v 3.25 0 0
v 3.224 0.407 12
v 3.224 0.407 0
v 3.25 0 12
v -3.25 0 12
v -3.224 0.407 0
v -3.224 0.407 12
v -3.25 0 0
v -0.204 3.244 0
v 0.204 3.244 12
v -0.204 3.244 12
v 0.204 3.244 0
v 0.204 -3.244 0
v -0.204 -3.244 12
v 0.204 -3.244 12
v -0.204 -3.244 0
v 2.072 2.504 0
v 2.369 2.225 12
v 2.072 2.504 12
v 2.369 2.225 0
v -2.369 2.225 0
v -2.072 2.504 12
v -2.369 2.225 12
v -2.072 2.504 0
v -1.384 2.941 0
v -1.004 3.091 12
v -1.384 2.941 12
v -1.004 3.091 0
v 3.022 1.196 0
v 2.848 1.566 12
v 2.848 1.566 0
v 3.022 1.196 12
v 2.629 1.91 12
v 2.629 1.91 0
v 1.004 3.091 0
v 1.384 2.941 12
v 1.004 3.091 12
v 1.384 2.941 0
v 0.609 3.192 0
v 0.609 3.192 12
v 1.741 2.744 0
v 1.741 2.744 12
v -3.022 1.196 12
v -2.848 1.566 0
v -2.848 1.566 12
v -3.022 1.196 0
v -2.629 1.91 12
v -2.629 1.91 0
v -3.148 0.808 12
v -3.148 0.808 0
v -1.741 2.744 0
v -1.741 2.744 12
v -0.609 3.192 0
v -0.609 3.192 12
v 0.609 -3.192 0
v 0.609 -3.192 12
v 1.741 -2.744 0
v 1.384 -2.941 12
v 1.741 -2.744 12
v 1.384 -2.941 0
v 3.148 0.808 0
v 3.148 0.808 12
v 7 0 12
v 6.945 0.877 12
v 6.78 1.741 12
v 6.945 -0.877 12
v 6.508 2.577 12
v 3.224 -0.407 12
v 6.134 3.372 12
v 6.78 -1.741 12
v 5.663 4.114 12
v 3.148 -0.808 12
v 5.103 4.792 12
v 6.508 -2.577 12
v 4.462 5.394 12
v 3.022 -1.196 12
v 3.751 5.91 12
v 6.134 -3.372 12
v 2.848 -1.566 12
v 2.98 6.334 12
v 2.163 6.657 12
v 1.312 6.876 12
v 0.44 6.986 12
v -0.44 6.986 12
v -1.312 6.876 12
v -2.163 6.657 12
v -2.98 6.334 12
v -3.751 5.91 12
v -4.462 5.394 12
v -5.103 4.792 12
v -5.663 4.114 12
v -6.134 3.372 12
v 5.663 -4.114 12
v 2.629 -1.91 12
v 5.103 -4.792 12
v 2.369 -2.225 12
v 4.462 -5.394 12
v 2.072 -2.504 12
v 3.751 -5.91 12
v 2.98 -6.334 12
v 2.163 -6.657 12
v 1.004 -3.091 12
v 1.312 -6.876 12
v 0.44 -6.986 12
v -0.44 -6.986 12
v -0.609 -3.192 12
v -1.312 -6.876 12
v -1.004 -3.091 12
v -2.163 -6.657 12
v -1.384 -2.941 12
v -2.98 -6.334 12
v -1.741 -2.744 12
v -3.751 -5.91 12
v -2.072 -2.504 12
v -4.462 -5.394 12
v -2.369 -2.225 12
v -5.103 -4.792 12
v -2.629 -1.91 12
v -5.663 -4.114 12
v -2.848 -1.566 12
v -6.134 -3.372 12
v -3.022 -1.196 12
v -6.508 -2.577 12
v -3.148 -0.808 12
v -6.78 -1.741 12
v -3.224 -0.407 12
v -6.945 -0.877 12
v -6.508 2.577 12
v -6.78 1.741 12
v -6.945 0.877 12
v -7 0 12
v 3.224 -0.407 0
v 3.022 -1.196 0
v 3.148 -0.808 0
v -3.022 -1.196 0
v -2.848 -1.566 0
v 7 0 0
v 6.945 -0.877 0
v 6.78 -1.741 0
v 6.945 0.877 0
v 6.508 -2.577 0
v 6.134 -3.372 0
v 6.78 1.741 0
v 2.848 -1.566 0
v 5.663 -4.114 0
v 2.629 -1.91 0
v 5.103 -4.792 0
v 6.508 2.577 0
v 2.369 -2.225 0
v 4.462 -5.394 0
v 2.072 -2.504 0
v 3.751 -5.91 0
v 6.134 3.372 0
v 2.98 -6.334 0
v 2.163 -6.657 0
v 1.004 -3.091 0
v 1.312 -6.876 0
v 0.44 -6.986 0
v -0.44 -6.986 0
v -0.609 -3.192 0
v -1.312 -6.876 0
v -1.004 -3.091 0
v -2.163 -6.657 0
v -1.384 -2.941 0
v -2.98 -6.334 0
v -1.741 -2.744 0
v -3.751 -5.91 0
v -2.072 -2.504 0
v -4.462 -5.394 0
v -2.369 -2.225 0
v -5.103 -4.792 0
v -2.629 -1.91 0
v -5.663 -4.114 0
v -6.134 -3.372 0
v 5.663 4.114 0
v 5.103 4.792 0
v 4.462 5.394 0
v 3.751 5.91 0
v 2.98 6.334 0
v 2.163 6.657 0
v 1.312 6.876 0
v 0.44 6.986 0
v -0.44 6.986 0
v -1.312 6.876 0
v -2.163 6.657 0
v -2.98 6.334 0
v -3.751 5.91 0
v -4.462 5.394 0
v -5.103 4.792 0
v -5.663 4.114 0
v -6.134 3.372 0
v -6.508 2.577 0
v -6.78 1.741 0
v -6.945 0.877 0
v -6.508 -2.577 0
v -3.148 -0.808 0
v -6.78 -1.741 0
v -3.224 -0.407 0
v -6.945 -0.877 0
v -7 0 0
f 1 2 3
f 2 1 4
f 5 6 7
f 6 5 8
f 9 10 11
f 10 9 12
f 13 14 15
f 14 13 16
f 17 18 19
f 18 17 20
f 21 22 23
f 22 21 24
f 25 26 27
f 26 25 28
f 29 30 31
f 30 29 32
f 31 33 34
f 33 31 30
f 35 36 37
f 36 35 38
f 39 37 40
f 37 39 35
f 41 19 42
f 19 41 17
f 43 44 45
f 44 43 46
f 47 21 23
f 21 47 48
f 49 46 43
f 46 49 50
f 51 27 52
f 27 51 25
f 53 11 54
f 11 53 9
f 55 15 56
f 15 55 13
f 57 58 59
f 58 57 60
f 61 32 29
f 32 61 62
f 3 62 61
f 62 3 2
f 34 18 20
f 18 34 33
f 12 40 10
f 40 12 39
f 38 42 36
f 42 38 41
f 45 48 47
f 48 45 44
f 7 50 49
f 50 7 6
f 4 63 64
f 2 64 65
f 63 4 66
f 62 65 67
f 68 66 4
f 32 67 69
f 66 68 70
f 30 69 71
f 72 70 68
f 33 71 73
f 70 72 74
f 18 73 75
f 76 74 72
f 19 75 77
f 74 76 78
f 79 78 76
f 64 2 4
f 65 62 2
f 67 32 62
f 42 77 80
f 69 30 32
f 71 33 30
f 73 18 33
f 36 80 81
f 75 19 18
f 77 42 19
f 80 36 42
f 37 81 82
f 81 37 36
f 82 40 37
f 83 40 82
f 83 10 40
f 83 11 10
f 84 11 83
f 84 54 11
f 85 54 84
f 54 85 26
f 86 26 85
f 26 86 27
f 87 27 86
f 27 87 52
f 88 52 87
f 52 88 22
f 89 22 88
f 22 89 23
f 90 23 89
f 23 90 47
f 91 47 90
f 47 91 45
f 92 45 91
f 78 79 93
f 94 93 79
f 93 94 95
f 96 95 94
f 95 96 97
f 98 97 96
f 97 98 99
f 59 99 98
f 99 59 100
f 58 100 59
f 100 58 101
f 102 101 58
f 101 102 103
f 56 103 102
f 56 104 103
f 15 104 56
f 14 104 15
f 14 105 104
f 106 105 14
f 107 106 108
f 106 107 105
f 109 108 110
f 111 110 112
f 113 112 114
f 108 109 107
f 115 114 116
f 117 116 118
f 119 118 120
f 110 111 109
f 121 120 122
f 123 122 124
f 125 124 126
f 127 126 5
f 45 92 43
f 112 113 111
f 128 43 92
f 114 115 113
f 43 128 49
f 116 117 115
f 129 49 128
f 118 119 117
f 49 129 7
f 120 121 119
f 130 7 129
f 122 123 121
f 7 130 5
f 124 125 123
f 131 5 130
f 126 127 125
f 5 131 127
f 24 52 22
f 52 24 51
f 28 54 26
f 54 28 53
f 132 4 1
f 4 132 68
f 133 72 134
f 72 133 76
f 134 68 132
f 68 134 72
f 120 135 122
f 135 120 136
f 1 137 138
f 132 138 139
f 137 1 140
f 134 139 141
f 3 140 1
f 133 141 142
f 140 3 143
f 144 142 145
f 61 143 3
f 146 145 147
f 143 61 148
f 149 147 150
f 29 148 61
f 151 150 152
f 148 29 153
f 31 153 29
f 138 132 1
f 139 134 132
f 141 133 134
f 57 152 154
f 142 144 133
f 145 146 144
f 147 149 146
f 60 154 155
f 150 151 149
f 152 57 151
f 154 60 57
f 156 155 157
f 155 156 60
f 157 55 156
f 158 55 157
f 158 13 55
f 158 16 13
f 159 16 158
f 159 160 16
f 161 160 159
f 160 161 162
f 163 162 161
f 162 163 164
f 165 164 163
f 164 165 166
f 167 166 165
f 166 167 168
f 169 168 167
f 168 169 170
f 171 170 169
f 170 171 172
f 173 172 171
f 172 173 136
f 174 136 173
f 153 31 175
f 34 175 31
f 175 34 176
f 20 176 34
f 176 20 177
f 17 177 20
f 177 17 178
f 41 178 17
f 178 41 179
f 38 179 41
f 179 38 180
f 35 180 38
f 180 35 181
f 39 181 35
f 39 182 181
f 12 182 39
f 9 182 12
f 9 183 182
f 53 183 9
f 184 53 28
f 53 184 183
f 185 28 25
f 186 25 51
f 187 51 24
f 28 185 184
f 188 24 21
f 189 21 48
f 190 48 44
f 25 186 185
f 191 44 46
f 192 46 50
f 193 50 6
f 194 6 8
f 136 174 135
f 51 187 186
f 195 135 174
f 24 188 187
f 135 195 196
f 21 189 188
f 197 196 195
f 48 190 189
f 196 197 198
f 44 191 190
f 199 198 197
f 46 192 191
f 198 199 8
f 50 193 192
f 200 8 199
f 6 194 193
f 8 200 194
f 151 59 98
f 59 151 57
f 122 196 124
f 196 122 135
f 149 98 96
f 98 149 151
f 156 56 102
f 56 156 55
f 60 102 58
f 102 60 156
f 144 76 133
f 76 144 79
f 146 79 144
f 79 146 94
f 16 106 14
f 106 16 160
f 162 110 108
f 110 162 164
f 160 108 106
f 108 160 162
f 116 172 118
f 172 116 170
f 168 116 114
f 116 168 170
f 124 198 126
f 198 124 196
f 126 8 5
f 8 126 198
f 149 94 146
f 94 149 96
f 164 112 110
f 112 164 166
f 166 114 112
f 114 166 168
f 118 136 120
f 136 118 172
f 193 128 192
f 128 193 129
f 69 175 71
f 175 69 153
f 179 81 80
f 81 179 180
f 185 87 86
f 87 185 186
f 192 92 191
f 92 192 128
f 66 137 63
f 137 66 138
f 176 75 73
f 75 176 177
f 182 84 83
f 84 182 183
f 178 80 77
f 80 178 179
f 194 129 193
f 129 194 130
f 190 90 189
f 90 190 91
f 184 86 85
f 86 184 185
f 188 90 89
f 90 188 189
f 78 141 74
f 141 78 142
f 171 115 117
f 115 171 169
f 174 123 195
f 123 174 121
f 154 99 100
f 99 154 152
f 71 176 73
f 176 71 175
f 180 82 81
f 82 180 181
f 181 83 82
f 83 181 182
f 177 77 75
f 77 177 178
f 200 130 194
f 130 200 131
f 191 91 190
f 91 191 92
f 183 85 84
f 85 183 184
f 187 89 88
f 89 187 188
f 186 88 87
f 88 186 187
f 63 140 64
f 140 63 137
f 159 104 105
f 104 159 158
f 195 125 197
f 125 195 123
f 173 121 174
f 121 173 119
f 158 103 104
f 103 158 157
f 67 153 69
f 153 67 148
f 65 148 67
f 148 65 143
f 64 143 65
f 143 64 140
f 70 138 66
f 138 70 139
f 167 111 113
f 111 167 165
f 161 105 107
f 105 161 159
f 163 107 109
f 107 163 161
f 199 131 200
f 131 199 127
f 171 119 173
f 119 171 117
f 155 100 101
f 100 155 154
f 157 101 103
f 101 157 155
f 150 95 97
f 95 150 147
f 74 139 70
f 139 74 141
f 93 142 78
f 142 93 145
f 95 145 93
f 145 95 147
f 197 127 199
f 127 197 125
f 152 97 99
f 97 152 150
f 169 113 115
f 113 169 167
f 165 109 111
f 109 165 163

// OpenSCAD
$fn = 50;


difference() {
	union() {
		cylinder(h = 12, r = 7.0000000000);
	}
	union() {
		cylinder(h = 12, r = 3.2500000000);
		cylinder(h = 12, r = 1.8000000000);
		cylinder(h = 12, r = 1.8000000000);
		cylinder(h = 12, r = 1.8000000000);
	}
}
